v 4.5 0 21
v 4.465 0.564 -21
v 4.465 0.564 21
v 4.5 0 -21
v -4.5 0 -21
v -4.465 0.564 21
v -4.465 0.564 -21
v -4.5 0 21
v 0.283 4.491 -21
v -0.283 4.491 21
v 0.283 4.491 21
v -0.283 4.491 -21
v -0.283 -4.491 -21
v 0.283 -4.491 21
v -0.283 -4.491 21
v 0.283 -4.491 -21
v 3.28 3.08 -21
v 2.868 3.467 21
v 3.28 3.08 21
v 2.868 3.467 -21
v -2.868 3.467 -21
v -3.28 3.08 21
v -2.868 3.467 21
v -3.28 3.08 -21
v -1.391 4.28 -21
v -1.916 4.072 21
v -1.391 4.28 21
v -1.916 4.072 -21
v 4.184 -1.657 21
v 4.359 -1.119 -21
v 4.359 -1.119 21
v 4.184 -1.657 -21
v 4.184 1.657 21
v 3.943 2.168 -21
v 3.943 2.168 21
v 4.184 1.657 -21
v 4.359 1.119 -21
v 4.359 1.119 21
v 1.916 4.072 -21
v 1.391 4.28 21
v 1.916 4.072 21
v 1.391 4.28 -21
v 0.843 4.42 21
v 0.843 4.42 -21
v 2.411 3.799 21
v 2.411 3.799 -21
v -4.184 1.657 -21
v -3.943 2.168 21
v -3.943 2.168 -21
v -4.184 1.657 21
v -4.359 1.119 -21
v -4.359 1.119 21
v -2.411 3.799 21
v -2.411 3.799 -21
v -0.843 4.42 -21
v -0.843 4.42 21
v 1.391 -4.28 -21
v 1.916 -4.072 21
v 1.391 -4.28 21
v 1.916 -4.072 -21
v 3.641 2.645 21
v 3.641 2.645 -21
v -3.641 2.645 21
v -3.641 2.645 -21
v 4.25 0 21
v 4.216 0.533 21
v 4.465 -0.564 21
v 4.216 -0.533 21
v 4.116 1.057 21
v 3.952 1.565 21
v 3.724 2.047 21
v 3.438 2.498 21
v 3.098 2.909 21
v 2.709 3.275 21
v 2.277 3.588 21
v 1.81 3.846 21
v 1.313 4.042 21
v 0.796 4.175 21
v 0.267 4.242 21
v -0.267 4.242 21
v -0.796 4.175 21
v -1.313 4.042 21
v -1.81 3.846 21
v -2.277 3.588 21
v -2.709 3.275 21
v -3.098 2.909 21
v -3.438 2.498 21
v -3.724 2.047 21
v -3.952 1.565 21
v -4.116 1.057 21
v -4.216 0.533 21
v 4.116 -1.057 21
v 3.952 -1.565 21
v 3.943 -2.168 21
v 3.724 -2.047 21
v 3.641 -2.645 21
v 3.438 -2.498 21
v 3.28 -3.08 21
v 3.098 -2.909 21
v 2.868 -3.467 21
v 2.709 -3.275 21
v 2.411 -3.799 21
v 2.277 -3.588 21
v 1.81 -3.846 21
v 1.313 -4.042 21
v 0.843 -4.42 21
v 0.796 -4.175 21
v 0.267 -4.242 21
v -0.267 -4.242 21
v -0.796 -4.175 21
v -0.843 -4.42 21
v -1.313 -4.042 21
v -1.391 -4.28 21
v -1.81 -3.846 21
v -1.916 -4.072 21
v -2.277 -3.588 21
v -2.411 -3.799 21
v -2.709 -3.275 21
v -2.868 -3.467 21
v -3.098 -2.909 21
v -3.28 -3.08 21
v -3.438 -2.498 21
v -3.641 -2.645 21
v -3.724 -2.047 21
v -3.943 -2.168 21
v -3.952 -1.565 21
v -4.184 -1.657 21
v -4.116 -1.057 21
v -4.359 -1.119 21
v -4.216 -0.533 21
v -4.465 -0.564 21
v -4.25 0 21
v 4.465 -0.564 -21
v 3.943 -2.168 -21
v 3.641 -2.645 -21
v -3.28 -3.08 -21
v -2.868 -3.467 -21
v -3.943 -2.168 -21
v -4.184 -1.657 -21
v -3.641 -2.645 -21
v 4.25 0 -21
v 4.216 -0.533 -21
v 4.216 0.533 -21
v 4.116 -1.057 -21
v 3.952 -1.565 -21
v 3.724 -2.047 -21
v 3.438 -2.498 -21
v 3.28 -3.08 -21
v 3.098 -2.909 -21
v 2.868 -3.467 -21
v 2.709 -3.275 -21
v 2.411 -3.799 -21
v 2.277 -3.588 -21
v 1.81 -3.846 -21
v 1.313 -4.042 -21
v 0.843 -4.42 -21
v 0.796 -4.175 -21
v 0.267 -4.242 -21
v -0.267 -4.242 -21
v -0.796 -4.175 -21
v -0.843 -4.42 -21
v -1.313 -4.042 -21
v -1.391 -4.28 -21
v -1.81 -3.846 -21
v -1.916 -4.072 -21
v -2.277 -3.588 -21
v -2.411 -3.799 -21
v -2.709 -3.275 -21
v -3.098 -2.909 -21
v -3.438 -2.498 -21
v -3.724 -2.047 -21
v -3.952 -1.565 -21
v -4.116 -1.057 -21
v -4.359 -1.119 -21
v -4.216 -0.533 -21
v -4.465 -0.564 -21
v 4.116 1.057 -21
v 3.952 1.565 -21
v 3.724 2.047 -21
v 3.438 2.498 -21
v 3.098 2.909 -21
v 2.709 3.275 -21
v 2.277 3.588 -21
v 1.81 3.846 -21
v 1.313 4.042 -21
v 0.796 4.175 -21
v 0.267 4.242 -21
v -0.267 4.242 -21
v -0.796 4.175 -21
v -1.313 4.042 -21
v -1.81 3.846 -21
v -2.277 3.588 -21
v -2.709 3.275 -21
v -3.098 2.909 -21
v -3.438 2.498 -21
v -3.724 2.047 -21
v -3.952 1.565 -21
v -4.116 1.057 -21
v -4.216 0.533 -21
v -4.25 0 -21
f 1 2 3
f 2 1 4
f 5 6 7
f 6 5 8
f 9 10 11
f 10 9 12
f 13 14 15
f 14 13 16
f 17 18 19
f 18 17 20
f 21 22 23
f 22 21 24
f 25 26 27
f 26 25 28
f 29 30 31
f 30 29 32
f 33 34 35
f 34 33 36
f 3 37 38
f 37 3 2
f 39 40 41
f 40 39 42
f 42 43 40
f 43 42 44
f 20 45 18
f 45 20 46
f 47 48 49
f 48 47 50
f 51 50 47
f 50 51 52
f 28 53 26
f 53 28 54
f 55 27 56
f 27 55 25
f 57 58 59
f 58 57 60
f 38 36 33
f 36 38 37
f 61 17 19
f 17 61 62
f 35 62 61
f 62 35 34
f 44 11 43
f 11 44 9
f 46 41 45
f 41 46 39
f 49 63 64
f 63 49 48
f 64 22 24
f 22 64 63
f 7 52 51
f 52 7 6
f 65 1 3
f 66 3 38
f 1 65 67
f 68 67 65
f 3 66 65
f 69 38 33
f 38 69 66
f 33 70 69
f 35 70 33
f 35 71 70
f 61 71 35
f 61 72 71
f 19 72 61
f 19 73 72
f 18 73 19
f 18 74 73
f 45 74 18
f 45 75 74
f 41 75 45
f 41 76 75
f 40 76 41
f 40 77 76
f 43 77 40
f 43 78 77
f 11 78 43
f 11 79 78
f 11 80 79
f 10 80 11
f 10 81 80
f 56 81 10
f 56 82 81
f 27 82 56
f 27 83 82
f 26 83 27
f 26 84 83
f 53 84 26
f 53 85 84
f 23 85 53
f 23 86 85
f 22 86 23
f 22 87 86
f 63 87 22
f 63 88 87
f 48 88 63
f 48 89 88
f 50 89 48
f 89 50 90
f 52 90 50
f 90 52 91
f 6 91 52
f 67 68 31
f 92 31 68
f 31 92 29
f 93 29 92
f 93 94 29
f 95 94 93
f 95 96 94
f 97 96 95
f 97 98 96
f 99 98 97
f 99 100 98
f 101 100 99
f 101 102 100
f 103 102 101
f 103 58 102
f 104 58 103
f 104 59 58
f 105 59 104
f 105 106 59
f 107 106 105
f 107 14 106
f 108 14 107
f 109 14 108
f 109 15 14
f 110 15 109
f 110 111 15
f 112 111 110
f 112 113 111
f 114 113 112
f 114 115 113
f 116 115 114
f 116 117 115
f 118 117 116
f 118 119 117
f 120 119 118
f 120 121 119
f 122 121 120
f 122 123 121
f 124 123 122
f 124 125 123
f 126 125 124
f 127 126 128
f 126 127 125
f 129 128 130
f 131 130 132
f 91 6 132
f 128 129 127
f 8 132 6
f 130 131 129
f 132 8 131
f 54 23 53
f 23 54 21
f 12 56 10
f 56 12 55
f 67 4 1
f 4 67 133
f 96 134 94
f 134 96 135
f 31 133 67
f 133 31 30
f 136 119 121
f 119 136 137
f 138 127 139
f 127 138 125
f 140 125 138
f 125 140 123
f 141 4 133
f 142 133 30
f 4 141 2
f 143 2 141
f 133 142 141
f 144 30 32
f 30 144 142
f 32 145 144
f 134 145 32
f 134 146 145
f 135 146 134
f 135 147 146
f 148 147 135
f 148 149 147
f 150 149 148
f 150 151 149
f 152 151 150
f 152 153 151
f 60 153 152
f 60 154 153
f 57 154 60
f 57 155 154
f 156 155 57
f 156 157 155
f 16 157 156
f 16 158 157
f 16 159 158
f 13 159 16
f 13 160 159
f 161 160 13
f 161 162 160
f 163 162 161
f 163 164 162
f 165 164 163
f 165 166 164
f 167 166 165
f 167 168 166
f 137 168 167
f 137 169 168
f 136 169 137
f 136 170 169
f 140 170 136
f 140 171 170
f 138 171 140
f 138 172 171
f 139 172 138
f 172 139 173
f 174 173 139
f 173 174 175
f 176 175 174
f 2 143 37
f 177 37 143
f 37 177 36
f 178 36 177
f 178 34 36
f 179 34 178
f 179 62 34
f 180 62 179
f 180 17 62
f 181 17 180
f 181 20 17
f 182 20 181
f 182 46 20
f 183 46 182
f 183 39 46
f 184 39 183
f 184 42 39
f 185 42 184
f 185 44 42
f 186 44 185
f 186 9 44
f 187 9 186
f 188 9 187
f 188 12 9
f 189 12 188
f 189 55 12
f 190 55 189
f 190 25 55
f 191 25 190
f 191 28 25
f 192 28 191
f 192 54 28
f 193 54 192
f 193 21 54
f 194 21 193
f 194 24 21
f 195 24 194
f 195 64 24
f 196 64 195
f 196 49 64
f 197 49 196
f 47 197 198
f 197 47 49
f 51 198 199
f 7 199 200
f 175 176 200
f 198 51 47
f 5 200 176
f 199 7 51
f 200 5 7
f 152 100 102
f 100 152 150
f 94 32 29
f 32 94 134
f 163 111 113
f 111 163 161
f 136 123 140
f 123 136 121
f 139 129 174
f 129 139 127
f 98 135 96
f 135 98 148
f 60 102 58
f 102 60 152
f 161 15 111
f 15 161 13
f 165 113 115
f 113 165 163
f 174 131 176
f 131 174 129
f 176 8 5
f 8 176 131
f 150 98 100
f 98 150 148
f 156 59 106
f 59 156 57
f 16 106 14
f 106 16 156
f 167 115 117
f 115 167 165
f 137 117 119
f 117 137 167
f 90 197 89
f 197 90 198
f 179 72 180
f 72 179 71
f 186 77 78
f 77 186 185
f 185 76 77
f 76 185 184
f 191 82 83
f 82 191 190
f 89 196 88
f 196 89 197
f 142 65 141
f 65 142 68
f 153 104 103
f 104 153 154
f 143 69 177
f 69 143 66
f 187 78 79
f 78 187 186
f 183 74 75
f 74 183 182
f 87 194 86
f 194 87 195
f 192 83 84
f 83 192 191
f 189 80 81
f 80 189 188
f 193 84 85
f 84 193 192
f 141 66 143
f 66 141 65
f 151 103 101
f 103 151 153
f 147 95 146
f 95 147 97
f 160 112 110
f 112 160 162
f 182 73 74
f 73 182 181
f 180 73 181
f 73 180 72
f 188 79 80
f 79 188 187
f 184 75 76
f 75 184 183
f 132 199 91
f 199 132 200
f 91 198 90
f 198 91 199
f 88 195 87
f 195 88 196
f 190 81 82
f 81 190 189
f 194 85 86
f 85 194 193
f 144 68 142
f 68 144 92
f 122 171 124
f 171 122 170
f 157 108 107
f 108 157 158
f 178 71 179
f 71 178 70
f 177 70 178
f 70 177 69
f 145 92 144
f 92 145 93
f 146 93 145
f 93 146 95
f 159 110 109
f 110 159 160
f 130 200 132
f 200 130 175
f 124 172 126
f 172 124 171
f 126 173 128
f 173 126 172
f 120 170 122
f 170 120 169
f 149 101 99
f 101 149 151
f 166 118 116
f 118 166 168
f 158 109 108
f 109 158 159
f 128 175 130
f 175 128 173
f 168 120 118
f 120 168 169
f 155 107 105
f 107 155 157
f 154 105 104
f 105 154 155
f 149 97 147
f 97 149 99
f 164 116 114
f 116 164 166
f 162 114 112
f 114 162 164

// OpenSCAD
$fn = 50;


difference() {
	union() {
		translate(v = [0, 0, -21.0000000000]) {
			cylinder(h = 42, r = 4.5000000000);
		}
	}
	union() {
		translate(v = [0, 0, -100.0000000000]) {
			cylinder(h = 200, r = 4.2500000000);
		}
	}
}
